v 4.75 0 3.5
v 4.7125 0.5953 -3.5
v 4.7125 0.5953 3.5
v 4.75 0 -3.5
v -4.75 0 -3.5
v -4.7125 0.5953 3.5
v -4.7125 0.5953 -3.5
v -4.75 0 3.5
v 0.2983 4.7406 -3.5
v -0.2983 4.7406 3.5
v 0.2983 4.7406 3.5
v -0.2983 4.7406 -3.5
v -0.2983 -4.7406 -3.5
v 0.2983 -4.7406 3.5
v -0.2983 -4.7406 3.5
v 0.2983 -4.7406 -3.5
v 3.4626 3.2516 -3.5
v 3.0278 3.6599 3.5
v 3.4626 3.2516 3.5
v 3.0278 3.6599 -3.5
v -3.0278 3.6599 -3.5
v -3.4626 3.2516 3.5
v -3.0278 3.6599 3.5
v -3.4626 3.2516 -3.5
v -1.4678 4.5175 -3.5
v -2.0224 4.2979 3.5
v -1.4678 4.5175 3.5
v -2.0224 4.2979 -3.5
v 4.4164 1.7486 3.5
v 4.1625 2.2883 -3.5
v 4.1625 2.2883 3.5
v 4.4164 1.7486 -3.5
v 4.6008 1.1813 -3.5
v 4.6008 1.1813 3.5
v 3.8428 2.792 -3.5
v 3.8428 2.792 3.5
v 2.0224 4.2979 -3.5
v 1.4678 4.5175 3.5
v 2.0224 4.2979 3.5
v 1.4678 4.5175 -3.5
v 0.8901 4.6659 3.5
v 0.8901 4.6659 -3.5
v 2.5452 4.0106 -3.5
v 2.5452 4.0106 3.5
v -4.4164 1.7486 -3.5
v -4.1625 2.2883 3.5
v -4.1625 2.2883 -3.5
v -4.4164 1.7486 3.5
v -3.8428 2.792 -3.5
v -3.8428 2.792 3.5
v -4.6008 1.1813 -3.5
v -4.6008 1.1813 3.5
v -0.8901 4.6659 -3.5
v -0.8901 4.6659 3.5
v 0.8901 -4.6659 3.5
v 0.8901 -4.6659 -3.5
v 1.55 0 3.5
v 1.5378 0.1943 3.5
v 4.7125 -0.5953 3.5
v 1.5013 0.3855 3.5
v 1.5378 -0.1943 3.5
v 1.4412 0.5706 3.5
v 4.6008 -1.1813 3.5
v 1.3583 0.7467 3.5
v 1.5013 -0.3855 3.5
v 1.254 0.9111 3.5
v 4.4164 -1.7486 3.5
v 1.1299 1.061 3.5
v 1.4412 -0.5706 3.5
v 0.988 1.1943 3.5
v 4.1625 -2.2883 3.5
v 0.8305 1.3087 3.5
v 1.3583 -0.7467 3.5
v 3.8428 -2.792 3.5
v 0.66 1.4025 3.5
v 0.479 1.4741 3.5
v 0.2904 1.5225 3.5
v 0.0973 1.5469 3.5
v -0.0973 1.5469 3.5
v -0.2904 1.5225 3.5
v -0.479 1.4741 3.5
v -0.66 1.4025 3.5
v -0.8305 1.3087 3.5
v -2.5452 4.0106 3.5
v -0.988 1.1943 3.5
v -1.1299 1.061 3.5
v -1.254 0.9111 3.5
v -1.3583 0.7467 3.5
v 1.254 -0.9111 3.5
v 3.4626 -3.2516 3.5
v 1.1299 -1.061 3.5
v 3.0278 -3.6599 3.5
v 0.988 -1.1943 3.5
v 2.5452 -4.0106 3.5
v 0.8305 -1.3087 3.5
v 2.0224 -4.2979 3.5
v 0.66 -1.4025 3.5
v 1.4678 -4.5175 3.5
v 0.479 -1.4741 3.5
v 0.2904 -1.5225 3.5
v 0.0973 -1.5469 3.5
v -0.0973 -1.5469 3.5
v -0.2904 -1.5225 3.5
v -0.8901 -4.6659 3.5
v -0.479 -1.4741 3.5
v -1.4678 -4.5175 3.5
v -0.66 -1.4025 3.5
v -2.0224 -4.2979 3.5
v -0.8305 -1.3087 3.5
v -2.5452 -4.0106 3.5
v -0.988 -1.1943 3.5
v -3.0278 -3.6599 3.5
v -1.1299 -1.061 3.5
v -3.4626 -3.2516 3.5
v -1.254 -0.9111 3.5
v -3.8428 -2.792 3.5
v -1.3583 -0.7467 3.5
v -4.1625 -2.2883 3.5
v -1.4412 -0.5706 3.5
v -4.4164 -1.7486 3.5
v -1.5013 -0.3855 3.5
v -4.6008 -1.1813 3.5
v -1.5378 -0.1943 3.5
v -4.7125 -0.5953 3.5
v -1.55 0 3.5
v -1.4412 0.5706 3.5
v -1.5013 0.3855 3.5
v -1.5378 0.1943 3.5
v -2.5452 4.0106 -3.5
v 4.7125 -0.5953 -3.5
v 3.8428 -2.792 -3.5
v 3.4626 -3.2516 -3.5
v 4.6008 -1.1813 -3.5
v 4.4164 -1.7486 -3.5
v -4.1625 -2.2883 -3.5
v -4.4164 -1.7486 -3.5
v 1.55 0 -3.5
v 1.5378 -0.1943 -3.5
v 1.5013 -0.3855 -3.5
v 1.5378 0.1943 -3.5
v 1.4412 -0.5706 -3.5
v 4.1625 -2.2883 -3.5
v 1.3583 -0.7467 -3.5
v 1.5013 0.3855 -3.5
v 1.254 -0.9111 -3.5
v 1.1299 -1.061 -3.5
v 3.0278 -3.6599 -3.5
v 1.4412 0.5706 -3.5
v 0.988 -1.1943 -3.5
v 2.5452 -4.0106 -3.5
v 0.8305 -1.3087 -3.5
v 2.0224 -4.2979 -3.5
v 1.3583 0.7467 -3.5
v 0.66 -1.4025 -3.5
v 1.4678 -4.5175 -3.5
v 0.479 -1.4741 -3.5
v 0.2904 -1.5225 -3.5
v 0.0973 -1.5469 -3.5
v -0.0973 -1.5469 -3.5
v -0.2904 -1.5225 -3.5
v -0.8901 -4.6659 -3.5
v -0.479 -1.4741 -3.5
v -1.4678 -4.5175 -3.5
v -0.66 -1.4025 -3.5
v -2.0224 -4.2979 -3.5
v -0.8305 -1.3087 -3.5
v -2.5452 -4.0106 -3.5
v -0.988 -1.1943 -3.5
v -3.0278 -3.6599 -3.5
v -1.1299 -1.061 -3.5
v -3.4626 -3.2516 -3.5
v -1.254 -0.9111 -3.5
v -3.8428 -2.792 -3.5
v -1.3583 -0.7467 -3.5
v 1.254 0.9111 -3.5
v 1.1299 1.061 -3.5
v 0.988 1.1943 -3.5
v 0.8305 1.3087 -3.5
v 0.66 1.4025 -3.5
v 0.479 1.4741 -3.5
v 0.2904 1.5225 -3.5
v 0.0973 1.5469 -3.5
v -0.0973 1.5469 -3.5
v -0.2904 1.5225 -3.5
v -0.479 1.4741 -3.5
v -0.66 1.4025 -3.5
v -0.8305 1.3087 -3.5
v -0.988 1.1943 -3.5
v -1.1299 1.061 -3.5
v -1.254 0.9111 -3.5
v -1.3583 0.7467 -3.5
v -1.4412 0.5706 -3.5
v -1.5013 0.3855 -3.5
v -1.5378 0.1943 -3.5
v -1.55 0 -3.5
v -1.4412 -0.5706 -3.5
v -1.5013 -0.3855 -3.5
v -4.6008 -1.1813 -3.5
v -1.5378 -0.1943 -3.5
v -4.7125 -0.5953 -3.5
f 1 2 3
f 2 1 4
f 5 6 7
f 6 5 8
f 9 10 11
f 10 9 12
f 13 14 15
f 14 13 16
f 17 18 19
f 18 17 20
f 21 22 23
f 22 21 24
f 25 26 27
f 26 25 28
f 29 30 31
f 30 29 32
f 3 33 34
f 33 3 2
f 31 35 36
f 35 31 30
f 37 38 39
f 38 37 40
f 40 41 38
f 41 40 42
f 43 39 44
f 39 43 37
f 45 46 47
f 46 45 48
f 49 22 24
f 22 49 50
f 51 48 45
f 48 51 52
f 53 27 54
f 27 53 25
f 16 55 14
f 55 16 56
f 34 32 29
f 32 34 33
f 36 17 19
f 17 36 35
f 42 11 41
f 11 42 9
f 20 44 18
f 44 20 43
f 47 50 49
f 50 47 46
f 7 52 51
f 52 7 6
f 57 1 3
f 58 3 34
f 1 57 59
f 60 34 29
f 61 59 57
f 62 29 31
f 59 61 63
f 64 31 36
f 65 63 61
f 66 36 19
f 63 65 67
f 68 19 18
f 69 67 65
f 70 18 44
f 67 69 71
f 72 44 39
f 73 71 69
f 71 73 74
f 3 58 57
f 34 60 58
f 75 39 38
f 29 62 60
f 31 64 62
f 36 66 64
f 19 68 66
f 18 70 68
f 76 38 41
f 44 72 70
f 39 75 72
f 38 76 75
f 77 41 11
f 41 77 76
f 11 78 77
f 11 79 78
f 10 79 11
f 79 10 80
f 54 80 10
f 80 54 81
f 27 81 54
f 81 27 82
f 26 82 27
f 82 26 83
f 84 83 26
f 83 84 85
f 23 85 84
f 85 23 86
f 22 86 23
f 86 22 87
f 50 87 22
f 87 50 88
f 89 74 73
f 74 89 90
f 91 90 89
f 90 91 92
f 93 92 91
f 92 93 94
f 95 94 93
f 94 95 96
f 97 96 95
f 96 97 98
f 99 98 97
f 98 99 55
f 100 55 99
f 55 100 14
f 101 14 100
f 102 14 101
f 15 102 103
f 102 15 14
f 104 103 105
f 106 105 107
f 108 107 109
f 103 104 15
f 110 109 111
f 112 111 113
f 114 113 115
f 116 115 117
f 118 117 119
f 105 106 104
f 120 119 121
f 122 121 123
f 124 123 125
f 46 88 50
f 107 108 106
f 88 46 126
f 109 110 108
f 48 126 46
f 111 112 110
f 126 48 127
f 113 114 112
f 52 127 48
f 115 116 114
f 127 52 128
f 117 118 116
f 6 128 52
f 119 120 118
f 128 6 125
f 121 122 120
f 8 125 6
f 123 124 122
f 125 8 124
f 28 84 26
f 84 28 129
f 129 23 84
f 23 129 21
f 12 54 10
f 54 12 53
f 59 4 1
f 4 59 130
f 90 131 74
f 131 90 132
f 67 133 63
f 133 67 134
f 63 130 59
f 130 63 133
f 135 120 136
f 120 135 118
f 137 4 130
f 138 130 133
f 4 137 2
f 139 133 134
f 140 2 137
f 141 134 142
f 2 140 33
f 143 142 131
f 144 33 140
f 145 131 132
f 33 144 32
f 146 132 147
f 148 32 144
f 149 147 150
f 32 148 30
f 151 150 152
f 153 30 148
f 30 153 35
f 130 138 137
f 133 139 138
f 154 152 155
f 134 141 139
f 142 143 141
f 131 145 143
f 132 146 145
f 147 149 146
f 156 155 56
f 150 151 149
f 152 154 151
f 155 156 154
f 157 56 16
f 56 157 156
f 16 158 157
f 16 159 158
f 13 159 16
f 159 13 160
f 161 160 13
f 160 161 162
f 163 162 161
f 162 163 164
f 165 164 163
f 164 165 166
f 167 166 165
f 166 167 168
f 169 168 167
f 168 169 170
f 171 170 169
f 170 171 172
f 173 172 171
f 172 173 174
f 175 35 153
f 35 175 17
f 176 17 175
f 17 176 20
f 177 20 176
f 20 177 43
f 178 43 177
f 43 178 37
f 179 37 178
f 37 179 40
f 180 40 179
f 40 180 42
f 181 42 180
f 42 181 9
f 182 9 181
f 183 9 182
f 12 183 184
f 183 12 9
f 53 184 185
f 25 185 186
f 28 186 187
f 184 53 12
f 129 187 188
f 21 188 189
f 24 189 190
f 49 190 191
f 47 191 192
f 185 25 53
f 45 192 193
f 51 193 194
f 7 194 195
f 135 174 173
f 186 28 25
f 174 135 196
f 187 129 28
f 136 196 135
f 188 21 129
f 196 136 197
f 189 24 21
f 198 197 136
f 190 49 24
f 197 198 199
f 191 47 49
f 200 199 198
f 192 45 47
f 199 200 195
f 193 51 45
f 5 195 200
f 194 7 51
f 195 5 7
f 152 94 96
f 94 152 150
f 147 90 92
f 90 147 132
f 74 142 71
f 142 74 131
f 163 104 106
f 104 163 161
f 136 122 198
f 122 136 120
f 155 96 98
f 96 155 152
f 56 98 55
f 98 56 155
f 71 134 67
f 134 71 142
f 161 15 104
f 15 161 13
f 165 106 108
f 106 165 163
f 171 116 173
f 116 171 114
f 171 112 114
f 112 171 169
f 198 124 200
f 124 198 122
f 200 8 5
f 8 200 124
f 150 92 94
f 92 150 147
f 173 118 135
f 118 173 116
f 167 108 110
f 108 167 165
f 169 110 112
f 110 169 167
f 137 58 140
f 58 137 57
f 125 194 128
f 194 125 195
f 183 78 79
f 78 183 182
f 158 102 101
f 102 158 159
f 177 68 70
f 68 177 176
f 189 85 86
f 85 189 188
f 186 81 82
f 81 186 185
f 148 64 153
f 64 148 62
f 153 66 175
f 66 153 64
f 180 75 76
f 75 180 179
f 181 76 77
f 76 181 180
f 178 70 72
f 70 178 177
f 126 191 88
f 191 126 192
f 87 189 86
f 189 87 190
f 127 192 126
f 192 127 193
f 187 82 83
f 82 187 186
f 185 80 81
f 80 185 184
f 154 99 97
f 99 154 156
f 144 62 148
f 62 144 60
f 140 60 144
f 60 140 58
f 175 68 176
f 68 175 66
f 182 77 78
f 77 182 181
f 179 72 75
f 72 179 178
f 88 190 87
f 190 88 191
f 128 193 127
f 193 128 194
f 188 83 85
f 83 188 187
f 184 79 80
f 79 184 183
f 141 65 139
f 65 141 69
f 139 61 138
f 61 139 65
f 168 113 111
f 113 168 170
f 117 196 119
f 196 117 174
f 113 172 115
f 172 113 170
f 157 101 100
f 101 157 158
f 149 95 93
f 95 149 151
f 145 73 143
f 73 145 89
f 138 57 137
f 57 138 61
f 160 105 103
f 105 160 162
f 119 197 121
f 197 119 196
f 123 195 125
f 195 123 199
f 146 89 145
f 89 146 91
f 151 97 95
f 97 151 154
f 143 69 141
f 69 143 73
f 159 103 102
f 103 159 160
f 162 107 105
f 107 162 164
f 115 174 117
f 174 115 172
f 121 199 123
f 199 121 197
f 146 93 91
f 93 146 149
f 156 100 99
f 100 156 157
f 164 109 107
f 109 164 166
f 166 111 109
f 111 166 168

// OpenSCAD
$fn = 50;


difference() {
	union() {
		translate(v = [0, 0, -3.5000000000]) {
			cylinder(h = 7, r = 4.7500000000);
		}
	}
	union() {
		translate(v = [0, 0, -100.0000000000]) {
			cylinder(h = 200, r = 1.5500000000);
		}
	}
}
